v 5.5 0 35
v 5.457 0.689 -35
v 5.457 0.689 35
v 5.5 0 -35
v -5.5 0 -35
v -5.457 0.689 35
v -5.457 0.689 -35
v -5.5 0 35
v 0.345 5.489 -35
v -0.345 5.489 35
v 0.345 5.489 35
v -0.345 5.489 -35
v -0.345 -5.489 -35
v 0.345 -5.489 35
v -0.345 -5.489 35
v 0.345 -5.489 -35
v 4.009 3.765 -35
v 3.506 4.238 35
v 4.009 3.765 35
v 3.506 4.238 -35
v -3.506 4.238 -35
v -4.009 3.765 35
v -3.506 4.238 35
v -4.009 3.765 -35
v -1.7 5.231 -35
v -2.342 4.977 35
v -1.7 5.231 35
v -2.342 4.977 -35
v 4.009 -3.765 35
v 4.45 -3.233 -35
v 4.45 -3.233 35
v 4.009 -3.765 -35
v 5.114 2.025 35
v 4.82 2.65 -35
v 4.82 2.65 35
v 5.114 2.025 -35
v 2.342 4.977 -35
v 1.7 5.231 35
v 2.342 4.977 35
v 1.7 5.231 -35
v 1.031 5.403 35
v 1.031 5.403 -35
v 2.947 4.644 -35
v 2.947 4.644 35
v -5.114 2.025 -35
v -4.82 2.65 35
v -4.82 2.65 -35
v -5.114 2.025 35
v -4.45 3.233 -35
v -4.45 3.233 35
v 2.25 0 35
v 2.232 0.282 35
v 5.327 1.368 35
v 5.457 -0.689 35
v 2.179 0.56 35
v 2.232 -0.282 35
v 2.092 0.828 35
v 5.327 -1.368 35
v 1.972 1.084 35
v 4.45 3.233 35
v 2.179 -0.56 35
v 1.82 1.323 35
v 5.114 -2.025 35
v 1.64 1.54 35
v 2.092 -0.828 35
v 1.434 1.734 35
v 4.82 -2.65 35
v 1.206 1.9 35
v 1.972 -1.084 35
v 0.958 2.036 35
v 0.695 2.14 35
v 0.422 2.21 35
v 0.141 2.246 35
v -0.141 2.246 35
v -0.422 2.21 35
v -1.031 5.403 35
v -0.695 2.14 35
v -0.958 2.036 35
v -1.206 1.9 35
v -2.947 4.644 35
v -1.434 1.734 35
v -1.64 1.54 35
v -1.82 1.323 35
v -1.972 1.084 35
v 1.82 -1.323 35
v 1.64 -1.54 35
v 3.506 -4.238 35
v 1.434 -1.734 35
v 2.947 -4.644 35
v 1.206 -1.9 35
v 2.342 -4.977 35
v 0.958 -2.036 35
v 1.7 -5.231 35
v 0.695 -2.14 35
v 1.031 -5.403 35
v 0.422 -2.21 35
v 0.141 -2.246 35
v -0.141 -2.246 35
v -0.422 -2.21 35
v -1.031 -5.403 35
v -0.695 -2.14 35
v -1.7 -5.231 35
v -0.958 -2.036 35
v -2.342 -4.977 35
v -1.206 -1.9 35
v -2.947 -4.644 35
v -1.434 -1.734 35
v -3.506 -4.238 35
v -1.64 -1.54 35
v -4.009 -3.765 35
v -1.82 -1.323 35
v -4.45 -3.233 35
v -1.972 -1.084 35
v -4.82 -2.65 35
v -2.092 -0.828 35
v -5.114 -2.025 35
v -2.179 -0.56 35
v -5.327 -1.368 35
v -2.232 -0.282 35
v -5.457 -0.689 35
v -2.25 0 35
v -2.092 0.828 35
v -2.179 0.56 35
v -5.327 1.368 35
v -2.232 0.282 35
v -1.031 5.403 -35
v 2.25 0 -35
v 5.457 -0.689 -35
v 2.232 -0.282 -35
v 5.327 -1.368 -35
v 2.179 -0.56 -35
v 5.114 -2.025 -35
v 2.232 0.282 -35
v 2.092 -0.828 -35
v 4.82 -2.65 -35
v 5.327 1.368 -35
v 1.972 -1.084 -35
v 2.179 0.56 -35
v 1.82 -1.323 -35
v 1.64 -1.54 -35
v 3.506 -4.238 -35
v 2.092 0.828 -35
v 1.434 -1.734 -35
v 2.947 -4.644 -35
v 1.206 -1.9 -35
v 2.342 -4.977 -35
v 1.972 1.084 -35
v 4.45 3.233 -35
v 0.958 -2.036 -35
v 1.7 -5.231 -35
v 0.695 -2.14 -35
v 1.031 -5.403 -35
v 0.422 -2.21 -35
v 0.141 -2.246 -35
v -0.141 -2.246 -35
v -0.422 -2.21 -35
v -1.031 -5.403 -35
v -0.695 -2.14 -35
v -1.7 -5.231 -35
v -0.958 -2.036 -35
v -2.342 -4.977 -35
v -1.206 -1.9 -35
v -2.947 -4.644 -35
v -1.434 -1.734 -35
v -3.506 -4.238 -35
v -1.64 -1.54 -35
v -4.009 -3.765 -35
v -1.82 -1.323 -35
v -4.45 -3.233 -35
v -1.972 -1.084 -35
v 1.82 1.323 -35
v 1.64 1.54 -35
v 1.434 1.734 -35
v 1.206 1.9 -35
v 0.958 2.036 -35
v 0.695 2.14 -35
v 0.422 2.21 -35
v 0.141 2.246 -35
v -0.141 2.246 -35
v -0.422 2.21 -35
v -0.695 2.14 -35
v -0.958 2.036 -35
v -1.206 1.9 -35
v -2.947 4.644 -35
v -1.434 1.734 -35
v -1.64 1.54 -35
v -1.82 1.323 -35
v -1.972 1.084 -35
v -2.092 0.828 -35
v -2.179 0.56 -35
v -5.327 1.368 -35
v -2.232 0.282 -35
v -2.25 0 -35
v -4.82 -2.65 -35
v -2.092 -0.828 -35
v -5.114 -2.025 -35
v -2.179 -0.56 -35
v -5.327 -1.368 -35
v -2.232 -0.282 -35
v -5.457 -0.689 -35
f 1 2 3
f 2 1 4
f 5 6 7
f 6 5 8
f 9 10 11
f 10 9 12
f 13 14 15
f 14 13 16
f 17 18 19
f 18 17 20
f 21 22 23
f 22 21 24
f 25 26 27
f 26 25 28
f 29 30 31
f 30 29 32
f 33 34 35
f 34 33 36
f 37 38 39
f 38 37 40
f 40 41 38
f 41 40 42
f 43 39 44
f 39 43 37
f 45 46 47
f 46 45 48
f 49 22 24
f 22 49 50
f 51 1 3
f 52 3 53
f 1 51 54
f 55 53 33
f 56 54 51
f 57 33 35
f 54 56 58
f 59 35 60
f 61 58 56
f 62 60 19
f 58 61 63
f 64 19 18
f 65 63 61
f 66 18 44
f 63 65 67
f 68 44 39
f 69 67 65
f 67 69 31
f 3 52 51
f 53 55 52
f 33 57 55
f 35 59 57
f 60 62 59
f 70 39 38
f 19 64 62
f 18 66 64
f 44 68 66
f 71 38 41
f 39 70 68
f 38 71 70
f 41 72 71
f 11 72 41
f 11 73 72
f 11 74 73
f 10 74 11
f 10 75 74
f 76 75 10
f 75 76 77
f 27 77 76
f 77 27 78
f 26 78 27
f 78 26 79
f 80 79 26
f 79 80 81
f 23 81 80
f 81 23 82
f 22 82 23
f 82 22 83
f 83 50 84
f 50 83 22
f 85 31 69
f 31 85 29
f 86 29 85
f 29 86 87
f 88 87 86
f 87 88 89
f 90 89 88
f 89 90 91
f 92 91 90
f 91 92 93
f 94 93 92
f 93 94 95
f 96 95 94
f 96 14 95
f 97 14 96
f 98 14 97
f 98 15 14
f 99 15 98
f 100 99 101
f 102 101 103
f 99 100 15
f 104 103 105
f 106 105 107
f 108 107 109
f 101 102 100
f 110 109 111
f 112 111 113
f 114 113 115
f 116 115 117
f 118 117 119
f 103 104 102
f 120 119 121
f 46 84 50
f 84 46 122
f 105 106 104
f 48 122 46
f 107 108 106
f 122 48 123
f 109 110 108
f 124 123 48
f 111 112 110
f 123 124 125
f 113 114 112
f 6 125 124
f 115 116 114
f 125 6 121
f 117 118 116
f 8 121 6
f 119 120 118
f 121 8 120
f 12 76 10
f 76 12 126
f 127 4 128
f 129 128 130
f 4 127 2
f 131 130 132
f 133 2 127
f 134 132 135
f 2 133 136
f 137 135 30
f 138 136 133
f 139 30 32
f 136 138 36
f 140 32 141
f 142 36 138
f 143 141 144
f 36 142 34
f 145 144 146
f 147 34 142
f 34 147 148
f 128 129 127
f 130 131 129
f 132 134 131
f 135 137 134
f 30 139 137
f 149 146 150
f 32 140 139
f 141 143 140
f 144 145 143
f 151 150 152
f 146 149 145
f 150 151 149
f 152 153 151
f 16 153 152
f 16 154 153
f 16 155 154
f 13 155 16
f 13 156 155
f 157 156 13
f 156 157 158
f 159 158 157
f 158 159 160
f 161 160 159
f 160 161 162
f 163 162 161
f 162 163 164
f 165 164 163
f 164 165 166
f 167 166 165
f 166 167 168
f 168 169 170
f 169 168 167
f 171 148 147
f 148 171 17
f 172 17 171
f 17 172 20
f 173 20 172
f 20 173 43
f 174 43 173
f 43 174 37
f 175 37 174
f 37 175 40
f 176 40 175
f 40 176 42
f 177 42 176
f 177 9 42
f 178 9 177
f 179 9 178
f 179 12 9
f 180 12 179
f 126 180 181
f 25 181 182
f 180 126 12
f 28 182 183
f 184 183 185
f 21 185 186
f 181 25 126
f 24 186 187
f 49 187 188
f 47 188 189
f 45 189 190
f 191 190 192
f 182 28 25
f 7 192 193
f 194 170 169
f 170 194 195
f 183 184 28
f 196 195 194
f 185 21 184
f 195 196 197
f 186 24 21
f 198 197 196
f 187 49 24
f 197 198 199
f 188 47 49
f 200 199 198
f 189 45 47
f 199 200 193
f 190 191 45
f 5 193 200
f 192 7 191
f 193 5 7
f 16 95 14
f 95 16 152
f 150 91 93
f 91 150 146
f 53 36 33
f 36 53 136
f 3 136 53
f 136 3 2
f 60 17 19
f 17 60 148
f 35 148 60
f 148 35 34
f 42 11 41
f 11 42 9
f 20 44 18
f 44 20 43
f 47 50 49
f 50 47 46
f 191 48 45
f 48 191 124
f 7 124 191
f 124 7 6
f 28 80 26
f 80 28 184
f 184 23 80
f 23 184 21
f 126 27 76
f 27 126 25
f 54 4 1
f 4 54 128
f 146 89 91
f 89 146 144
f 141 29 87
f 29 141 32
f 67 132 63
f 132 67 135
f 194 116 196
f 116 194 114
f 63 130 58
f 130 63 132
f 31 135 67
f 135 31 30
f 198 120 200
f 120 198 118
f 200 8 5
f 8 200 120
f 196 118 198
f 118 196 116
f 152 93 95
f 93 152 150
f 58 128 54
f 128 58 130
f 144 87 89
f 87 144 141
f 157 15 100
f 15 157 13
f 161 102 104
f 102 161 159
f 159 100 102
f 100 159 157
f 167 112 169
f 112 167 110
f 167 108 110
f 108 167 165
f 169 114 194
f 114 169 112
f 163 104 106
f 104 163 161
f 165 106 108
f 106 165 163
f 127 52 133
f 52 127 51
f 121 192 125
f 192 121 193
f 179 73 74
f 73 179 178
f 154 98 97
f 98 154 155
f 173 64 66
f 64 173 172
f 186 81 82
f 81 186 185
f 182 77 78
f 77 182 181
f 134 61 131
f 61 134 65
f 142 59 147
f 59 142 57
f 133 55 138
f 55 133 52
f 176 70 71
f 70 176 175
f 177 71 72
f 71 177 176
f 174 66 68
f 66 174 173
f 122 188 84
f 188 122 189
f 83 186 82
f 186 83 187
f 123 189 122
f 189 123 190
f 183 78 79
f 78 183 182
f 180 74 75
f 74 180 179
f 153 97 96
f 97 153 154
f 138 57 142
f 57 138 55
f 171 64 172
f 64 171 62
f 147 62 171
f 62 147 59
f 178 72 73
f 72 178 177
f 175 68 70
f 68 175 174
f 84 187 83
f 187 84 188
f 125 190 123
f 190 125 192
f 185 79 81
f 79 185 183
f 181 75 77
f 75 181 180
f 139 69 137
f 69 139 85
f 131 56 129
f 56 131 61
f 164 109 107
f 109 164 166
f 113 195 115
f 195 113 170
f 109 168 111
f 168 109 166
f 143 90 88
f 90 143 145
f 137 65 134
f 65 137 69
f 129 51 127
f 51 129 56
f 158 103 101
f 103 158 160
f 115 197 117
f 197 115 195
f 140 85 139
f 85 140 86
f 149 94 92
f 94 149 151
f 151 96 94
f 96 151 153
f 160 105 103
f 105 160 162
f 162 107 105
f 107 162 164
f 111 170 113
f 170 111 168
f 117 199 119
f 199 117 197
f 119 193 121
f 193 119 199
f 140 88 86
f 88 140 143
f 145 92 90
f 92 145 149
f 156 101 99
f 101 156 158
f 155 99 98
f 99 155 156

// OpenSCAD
$fn = 50;


difference() {
	union() {
		translate(v = [0, 0, -35.0000000000]) {
			cylinder(h = 70, r = 5.5000000000);
		}
	}
	union() {
		translate(v = [0, 0, -100.0000000000]) {
			cylinder(h = 200, r = 2.2500000000);
		}
	}
}
